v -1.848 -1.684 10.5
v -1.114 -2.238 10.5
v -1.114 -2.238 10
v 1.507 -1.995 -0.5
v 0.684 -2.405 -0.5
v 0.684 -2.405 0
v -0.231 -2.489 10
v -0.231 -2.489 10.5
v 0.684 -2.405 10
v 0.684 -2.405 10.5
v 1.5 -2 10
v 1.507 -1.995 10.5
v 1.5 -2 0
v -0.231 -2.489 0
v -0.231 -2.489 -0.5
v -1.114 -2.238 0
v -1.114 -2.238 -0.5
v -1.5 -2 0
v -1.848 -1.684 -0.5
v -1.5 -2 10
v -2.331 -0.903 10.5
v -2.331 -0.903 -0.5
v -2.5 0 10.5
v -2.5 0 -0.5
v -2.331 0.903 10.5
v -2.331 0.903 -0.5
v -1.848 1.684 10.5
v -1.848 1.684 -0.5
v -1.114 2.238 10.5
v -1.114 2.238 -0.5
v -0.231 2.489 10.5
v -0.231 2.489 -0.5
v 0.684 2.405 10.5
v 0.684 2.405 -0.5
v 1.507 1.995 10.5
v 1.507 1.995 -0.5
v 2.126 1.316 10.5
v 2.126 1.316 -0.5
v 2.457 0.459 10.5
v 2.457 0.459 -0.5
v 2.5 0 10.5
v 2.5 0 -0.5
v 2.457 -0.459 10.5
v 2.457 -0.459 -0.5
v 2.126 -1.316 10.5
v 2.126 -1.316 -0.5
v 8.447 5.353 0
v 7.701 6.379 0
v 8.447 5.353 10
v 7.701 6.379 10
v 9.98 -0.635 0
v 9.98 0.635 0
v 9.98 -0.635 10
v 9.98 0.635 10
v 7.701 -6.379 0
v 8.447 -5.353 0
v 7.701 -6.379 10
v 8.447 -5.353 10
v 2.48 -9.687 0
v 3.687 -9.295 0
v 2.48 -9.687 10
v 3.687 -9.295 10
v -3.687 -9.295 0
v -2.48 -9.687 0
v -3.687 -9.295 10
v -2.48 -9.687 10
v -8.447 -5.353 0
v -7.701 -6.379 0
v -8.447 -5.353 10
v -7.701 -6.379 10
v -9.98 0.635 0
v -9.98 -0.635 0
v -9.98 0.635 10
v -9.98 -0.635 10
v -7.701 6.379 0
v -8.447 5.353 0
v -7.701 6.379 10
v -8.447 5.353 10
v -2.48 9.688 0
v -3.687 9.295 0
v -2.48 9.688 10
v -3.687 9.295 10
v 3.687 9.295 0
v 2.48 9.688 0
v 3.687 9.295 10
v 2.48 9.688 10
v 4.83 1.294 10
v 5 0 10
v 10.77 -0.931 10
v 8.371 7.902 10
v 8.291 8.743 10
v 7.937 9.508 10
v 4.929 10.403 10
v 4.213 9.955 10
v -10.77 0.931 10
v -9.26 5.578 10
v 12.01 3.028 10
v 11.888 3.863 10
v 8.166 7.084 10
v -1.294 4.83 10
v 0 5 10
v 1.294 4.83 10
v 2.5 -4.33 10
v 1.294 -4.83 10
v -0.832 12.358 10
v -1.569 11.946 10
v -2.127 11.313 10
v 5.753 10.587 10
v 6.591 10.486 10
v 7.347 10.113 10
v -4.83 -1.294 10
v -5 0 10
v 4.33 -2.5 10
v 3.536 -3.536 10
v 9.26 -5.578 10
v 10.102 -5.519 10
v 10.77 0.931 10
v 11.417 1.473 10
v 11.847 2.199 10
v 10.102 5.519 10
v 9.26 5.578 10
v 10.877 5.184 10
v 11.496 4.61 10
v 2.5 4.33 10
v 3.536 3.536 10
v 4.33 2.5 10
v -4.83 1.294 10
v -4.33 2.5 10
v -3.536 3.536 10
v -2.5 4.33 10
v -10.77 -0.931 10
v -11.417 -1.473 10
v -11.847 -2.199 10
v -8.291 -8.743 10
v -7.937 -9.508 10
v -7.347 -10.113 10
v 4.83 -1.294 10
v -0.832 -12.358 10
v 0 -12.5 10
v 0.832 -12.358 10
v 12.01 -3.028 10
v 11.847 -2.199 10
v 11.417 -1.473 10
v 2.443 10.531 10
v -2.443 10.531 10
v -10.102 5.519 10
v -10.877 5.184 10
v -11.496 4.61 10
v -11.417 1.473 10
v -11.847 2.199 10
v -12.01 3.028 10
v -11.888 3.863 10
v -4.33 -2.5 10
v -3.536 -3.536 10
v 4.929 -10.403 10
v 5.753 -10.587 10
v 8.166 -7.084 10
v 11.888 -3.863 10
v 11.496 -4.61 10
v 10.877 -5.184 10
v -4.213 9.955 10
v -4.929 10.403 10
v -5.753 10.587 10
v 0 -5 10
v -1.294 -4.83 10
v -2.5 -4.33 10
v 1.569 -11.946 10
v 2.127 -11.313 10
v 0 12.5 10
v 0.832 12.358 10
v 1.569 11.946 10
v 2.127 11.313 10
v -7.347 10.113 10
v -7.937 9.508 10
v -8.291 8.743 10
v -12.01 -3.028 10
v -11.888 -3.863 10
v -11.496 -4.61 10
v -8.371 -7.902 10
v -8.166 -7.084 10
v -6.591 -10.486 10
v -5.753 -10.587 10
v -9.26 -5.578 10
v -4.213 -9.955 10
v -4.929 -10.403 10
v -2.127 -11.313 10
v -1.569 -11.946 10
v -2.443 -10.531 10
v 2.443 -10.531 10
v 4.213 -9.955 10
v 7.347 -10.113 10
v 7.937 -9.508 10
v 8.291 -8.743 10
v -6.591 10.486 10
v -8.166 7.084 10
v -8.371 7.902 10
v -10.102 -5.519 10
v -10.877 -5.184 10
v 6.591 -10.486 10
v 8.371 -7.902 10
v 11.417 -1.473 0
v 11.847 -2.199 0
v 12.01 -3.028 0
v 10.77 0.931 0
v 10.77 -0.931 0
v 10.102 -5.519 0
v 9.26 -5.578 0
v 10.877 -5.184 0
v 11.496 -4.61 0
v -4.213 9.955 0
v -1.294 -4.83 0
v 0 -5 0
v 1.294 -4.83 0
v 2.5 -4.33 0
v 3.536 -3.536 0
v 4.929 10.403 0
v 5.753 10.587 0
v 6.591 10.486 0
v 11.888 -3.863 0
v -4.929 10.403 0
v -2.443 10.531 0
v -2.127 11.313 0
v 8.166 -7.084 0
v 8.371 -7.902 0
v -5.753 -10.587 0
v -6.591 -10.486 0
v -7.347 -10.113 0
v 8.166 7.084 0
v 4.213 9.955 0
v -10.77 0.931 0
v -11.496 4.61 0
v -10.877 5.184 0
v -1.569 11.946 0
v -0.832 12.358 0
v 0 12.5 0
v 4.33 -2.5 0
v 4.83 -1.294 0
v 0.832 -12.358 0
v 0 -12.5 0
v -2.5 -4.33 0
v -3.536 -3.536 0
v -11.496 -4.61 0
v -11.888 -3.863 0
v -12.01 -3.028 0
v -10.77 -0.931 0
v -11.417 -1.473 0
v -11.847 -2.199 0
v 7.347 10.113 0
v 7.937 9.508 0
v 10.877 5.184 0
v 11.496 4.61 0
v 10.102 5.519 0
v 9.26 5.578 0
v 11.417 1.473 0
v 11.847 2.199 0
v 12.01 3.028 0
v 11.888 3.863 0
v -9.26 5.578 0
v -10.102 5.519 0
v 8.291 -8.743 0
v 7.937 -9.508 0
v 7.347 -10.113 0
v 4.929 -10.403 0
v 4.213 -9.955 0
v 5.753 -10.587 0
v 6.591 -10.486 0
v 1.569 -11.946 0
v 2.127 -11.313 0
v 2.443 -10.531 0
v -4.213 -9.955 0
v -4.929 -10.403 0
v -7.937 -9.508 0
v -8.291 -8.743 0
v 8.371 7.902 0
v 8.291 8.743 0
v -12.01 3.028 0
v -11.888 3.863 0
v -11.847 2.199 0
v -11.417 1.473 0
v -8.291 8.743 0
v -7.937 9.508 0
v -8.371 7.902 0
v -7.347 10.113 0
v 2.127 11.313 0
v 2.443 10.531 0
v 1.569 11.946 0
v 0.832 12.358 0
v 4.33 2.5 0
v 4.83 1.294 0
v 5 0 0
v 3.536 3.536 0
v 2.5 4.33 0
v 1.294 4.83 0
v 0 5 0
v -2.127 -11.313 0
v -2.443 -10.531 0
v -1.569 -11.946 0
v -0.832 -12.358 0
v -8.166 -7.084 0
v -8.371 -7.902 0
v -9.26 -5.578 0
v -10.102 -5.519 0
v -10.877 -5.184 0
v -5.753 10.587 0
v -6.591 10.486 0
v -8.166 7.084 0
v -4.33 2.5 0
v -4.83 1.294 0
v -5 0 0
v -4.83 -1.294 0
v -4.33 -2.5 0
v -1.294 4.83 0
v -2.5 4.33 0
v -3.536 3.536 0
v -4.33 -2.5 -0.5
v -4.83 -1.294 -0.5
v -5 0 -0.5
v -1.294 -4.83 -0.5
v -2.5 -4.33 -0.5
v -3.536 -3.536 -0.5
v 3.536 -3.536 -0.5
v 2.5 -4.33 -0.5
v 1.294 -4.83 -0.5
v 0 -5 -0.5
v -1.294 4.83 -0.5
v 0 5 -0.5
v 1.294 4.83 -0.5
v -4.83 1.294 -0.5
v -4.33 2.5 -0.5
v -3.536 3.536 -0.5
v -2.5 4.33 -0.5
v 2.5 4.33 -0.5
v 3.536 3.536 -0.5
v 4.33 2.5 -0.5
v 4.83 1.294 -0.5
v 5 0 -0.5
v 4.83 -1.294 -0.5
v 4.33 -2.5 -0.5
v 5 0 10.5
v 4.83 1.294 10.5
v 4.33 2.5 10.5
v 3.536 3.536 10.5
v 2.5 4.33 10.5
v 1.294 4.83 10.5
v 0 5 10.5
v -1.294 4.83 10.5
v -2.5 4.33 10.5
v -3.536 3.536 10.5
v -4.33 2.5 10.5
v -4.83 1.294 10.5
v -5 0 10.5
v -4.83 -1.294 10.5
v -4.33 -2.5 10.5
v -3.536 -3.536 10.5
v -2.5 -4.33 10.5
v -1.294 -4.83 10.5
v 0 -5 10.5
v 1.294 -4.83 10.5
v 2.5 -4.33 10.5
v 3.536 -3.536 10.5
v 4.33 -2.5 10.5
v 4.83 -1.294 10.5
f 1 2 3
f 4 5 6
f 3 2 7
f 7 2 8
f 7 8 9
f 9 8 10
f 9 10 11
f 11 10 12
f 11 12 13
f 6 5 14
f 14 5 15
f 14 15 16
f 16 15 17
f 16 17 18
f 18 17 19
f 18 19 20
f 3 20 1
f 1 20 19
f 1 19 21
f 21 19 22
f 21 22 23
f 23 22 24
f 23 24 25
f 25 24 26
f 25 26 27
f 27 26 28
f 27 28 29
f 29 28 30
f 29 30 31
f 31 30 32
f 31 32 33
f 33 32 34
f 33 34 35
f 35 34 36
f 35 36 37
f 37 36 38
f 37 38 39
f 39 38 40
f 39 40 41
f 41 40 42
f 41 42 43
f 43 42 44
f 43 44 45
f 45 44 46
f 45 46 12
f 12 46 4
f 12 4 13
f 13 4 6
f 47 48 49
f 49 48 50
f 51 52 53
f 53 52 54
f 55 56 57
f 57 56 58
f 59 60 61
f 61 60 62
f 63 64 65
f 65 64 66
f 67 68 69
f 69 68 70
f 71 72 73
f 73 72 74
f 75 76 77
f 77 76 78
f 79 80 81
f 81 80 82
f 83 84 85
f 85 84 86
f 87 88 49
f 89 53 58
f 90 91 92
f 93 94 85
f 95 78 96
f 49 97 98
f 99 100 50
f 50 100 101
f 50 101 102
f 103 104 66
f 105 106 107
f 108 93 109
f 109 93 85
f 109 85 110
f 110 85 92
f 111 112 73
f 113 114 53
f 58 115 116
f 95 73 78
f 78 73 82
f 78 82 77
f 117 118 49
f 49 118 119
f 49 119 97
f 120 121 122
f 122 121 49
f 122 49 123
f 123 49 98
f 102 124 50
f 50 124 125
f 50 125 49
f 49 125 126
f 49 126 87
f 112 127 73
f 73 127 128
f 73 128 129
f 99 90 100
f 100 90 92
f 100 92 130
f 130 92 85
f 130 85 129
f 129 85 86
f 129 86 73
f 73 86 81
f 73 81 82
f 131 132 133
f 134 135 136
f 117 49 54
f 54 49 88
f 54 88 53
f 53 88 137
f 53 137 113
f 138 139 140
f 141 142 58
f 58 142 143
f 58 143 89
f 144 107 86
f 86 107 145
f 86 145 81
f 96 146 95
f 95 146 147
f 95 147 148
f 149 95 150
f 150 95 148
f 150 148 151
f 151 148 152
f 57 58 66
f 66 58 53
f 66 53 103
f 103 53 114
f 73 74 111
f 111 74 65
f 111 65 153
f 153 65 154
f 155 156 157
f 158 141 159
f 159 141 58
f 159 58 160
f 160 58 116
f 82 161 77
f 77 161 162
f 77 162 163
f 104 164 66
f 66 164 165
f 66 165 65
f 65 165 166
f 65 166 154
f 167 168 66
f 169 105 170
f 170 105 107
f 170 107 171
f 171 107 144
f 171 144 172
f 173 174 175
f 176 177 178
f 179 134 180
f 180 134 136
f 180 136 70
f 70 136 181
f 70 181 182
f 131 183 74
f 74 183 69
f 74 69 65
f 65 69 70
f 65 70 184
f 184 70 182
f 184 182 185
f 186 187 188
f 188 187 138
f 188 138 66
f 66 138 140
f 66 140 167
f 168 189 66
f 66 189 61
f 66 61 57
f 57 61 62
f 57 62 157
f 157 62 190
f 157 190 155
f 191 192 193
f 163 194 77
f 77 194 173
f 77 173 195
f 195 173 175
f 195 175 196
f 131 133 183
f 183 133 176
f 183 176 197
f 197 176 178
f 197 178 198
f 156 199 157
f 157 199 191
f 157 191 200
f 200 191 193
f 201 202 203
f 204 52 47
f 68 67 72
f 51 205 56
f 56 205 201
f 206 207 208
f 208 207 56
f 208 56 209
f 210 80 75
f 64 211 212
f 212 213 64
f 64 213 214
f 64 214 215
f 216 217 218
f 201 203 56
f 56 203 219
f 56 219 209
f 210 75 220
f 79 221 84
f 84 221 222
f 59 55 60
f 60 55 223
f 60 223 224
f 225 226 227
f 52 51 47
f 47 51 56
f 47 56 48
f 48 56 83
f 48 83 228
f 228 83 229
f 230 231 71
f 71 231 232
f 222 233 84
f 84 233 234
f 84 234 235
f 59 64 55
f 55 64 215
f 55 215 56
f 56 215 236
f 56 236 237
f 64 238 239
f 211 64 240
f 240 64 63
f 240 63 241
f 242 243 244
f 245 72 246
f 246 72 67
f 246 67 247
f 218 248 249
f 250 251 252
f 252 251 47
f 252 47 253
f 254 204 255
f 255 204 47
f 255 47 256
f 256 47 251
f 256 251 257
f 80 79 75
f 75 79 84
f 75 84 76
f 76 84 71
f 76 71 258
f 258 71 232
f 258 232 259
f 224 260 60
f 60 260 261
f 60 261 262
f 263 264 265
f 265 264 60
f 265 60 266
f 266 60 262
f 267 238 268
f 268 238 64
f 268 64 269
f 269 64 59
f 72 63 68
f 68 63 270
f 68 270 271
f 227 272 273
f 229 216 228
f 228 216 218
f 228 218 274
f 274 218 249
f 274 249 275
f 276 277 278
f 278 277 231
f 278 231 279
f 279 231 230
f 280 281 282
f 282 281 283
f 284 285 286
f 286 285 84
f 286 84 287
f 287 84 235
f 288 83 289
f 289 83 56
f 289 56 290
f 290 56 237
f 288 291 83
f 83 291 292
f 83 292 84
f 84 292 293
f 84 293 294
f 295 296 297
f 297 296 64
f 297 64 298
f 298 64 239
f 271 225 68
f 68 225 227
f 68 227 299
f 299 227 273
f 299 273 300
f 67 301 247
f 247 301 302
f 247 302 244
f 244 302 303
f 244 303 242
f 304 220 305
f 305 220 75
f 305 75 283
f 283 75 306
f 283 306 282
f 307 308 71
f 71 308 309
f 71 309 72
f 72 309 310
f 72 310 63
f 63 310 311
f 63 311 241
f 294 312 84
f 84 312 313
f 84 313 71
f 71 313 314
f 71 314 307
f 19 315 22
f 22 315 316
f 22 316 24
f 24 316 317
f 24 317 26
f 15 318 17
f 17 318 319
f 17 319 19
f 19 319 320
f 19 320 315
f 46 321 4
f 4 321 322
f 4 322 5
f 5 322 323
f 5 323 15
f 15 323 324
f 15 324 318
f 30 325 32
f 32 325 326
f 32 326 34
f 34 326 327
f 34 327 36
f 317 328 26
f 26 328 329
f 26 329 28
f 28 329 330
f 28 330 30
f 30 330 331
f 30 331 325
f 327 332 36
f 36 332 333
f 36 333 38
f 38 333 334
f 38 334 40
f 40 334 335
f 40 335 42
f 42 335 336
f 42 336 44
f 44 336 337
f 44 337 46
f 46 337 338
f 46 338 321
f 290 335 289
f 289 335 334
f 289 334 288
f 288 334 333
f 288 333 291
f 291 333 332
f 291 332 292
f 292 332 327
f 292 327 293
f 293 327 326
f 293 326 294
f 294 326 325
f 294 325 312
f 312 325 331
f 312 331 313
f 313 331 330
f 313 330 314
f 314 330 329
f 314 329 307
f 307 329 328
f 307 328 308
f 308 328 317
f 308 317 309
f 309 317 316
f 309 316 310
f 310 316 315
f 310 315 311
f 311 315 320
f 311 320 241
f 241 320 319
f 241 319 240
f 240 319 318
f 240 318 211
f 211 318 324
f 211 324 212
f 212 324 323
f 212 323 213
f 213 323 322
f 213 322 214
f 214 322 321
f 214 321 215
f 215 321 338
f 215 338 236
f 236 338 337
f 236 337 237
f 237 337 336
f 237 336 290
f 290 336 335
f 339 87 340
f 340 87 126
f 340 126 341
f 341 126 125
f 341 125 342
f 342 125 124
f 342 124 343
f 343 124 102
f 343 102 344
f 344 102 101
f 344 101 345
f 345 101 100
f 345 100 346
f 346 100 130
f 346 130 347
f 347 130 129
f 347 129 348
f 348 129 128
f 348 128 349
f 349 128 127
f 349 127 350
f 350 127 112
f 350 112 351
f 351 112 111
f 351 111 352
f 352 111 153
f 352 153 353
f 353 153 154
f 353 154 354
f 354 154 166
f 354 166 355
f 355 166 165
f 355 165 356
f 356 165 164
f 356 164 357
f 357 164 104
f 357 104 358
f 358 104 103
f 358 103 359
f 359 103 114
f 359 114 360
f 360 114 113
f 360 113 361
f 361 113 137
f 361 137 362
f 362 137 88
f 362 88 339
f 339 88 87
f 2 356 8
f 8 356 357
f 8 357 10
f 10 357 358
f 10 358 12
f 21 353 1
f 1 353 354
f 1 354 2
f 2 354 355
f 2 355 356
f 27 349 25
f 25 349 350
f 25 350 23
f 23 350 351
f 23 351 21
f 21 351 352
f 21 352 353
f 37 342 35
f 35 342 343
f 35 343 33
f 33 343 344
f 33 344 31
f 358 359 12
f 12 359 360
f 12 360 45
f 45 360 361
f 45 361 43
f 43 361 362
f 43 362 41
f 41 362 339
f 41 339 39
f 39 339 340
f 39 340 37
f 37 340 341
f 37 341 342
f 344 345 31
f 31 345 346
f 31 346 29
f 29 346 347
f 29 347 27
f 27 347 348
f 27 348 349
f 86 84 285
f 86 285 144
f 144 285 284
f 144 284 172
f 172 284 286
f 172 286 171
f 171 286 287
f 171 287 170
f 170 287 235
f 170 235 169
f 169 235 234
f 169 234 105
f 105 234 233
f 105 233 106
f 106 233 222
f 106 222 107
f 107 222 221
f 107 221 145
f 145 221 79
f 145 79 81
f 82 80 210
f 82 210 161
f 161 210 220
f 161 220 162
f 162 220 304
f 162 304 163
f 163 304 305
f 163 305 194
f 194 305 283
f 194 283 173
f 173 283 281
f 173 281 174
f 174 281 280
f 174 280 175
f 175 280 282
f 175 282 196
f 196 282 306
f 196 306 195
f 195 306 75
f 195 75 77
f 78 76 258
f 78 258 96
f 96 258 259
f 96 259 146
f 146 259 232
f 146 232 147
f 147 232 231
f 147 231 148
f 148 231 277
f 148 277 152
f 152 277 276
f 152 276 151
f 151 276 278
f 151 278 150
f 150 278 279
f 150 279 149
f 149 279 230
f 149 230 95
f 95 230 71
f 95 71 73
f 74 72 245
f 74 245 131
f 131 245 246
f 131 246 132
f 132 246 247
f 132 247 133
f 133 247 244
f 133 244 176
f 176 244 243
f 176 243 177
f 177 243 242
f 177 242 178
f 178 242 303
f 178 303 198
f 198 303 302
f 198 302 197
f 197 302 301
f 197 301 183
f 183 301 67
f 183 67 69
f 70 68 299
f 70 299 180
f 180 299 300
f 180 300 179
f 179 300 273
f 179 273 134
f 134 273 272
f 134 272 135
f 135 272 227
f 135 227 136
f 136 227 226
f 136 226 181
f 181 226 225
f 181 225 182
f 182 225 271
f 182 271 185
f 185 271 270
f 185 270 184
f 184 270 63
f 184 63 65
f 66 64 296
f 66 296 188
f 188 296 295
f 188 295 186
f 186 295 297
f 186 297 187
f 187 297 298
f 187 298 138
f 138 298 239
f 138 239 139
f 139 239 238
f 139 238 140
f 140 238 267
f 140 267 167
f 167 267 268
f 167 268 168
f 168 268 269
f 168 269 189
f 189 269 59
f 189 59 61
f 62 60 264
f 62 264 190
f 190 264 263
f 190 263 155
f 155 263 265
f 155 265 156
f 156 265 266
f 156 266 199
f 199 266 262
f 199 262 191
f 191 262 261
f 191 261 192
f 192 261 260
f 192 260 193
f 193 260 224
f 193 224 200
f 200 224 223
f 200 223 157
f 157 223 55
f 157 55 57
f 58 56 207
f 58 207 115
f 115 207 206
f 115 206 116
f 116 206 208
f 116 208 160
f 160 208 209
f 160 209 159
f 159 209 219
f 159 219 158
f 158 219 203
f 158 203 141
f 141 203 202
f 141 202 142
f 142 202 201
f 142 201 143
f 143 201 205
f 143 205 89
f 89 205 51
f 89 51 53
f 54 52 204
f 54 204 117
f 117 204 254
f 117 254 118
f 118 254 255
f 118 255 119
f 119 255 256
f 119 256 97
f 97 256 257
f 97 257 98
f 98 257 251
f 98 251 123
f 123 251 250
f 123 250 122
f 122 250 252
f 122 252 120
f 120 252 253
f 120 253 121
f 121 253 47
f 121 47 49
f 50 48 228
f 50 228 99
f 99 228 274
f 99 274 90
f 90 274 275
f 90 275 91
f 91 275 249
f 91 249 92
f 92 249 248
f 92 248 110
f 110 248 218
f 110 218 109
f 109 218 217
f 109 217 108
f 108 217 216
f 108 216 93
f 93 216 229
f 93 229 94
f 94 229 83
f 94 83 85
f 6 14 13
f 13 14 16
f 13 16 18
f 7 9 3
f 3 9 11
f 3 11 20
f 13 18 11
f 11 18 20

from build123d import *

# Parameters (mm, degrees)
SKIZZE1_R                            = 10
AUFSATZ_LINEAR_AUSTRAGEN1_DEPTH      = 10
AUFSATZ_LINEAR_AUSTRAGEN4_DEPTH      = 0.5
AUFSATZ_LINEAR_AUSTRAGEN4_DEPTH_BACK = 10.5
SKIZZE5_R                            = 5
SKIZZE2_R                            = 2.5
AUFSATZ_LINEAR_AUSTRAGEN2_DEPTH      = 10
KREISMUSTER1_COUNT                   = 10
SCHNITT_LINEAR_AUSTRAGEN1_DEPTH      = 0.5
SCHNITT_LINEAR_AUSTRAGEN1_DEPTH_BACK = 20
SKIZZE3_R                            = 2.5
SKIZZE4_W                            = 3.121683878
SKIZZE4_H                            = 1.135727963
AUFSATZ_LINEAR_AUSTRAGEN3_DEPTH      = 10


with BuildPart() as part:
    # Skizze1 → Aufsatz-Linear austragen1 (new body)
    with BuildSketch(Plane.XY):
        Circle(SKIZZE1_R)
    extrude(amount=AUFSATZ_LINEAR_AUSTRAGEN1_DEPTH)

    # Skizze5 → Aufsatz-Linear austragen4 (add, two sides: drawn at the far end of the back side and taken through both)
    with BuildSketch(Plane.XY.offset(10).offset(-AUFSATZ_LINEAR_AUSTRAGEN4_DEPTH_BACK)):
        Circle(SKIZZE5_R)
    extrude(amount=AUFSATZ_LINEAR_AUSTRAGEN4_DEPTH + AUFSATZ_LINEAR_AUSTRAGEN4_DEPTH_BACK)

    # Skizze2 → Aufsatz-Linear austragen2 (add)
    with BuildSketch(Plane(origin=(0, 0, 0), x_dir=(-1, 0, 0), z_dir=(0, 0, -1))):
        with Locations((0, 10)):
            Circle(SKIZZE2_R)
    aufsatz_linear_austragen2 = extrude(amount=-AUFSATZ_LINEAR_AUSTRAGEN2_DEPTH)

    # Kreismuster1: Aufsatz-Linear austragen2 ×10 about axis
    kreismuster1_axis = Axis((0, 0, 0), (0, 0, 1))
    for i in range(1, KREISMUSTER1_COUNT):
        add(aufsatz_linear_austragen2.rotate(kreismuster1_axis, i * 360 / KREISMUSTER1_COUNT))

    # Skizze3 → Schnitt-Linear austragen1 (cut, two sides: drawn at the far end of the back side and taken through both)
    with BuildSketch(Plane.XY.offset(10).offset(-SCHNITT_LINEAR_AUSTRAGEN1_DEPTH_BACK)):
        Circle(SKIZZE3_R)
    extrude(amount=SCHNITT_LINEAR_AUSTRAGEN1_DEPTH + SCHNITT_LINEAR_AUSTRAGEN1_DEPTH_BACK, mode=Mode.SUBTRACT)

    # Skizze4 → Aufsatz-Linear austragen3 (add)
    with BuildSketch(Plane.XY.offset(10)):
        with Locations((0.060841939, -2.567863982)):
            Rectangle(SKIZZE4_W, SKIZZE4_H)
    extrude(amount=-AUFSATZ_LINEAR_AUSTRAGEN3_DEPTH)


solid = part.part
